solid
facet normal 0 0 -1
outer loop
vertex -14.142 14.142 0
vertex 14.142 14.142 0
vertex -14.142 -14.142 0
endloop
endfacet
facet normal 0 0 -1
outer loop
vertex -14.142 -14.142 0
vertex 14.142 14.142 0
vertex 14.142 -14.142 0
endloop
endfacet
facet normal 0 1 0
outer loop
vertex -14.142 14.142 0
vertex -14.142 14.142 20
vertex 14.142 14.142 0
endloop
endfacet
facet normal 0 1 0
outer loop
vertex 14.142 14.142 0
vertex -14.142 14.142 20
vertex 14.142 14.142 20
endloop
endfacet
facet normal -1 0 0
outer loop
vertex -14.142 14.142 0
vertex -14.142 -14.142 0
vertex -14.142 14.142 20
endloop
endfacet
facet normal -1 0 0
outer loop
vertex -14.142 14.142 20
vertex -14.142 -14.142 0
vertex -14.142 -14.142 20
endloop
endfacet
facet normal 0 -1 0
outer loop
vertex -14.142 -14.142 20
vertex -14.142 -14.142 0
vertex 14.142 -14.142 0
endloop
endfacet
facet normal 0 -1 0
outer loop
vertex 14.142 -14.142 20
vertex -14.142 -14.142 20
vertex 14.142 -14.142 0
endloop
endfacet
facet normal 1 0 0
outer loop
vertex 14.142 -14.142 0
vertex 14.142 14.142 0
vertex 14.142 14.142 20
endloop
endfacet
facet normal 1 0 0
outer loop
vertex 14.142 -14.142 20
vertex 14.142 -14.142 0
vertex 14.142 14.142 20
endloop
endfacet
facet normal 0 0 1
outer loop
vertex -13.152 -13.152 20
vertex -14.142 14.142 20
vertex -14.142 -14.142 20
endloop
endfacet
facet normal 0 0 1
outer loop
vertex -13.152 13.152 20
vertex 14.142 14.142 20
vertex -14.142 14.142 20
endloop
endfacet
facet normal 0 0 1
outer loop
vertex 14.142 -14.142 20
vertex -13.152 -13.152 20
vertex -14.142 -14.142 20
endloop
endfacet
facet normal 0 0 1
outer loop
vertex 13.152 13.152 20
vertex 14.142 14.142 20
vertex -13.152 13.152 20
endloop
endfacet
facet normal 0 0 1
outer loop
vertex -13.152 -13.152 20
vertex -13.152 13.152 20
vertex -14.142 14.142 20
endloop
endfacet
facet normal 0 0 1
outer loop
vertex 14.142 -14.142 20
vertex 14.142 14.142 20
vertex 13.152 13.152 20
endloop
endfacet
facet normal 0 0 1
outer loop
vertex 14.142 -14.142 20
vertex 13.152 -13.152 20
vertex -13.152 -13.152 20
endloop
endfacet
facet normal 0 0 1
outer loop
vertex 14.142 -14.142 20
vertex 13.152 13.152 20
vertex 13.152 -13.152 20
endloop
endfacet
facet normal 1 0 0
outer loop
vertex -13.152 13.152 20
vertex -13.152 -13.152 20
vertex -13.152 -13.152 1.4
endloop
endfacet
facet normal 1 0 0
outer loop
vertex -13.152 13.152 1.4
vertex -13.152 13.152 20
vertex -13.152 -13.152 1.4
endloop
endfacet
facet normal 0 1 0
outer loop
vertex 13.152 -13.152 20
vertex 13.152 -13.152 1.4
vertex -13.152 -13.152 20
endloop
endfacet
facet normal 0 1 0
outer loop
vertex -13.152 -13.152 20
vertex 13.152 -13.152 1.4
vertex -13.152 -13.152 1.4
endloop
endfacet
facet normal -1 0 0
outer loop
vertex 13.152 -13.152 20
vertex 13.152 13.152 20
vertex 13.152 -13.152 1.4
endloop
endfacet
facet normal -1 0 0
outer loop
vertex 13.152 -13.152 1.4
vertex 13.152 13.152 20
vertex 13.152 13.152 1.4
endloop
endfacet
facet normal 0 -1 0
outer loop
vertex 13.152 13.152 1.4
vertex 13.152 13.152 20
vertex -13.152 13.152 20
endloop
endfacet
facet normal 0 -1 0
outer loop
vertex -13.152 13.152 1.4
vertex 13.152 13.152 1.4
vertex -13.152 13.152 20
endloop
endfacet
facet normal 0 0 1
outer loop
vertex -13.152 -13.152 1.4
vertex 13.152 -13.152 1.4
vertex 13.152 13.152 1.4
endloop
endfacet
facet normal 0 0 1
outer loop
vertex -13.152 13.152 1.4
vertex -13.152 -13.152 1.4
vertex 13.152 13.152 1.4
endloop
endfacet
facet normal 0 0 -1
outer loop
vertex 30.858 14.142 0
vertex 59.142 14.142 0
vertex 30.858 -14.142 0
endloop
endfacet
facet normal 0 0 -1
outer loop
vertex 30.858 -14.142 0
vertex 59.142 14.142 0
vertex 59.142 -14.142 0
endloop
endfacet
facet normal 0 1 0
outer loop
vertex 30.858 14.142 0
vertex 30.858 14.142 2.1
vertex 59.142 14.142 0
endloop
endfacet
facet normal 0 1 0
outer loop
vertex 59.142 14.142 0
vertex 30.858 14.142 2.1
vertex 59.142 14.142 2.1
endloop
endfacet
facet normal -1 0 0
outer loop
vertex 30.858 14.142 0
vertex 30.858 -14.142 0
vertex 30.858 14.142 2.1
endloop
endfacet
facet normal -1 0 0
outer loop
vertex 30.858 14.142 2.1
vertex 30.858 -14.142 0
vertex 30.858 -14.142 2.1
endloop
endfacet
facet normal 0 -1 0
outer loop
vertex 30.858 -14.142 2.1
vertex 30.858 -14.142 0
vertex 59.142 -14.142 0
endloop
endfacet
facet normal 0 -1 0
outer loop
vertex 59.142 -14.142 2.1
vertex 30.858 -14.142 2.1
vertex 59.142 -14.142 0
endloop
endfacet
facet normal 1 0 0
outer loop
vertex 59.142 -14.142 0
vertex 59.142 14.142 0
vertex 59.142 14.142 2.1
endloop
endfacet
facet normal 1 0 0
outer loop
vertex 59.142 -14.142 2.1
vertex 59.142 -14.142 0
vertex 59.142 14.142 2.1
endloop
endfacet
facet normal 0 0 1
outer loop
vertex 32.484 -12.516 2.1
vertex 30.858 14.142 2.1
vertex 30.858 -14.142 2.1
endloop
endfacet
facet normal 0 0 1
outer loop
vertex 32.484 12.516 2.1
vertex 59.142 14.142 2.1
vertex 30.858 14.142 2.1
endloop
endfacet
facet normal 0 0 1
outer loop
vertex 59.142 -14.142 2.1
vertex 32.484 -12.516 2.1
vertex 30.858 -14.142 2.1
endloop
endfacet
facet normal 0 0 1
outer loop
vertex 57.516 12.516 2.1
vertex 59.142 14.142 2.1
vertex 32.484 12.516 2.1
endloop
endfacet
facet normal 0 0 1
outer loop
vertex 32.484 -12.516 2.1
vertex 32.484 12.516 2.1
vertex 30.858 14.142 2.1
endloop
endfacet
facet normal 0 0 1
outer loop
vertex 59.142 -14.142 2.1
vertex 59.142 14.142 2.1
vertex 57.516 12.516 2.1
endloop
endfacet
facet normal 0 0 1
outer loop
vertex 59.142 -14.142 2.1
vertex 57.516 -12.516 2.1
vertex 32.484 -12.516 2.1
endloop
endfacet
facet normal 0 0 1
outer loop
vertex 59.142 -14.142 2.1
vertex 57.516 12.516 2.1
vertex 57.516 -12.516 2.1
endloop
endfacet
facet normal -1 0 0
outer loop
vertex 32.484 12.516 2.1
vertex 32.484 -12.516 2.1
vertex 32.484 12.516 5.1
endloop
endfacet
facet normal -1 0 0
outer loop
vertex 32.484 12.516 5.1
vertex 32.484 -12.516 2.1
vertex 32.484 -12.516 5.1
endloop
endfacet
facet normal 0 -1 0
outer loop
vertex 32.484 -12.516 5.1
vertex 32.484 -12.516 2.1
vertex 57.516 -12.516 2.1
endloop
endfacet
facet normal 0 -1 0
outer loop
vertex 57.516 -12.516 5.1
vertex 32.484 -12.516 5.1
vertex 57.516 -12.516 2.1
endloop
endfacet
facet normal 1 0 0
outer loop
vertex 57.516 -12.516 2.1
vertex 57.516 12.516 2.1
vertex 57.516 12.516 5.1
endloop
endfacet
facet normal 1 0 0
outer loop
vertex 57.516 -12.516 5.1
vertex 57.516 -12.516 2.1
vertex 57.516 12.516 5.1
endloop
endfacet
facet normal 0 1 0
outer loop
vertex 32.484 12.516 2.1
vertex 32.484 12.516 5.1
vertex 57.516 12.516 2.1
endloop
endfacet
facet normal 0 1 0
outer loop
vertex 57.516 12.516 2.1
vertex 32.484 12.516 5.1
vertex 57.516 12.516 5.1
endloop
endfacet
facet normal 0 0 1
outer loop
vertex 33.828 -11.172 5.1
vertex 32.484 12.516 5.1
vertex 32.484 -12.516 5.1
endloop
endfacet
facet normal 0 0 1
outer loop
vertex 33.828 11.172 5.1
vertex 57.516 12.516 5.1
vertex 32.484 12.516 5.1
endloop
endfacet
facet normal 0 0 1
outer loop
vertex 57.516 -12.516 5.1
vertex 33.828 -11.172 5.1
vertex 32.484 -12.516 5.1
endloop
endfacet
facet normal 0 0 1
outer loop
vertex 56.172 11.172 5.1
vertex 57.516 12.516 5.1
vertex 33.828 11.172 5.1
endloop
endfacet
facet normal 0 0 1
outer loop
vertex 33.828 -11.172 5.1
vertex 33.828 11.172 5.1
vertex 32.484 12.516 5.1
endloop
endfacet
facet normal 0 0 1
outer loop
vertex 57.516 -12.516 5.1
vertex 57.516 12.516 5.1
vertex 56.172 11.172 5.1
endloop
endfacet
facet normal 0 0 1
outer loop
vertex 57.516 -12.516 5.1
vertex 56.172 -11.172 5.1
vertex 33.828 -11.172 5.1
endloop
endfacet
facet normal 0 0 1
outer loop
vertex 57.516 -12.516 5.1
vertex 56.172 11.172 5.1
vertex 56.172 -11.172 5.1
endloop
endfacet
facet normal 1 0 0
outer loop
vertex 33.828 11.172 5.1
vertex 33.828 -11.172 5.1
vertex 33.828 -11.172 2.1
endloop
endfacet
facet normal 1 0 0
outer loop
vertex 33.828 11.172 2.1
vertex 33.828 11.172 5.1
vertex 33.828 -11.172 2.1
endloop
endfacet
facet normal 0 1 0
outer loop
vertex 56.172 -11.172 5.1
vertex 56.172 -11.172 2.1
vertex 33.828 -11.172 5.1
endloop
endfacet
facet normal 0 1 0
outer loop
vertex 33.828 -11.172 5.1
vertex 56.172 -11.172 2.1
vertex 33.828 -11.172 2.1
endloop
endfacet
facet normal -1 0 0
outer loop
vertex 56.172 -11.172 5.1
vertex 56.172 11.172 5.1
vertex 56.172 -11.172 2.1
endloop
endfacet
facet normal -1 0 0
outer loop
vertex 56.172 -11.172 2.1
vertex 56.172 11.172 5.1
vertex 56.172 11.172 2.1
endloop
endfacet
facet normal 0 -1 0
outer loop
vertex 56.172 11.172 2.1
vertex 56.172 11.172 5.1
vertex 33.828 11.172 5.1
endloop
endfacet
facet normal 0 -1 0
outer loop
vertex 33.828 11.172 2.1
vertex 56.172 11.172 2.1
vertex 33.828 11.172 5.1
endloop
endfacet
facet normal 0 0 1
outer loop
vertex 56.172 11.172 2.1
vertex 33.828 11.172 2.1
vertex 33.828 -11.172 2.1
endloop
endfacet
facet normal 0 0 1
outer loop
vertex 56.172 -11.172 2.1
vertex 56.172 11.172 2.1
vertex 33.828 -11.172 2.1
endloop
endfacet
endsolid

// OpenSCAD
rotate([0,0,180/4]) nBox(height=20, radius=20, sides=4, thickness=1.4);

translate([2*20+5,0,0]) rotate([0,0,((4+1)%2)*180/4]) nLid(radius=20, sides=4, t=1.4, gap=0.2, depth=3);

module nBox(height=25, radius=25, sides=4, thickness=2.1){
echo(radius);
difference(){
cylinder(h=height, r=radius, $fn=sides);
translate([0,0,thickness]) cylinder(h=height, r=radius-thickness, $fn=sides);
	}
}

module nLid(radius=25, sides=4, thickness=2.1, gap=0.1, depth=2.1){
cylinder(h=thickness, r=radius, $fn=sides);
difference(){
translate([0,0,thickness]) cylinder(h=depth, r=radius-thickness-gap, $fn=sides);
cylinder(h=3*depth, r=radius-2*thickness, $fn=sides);
	}
}
